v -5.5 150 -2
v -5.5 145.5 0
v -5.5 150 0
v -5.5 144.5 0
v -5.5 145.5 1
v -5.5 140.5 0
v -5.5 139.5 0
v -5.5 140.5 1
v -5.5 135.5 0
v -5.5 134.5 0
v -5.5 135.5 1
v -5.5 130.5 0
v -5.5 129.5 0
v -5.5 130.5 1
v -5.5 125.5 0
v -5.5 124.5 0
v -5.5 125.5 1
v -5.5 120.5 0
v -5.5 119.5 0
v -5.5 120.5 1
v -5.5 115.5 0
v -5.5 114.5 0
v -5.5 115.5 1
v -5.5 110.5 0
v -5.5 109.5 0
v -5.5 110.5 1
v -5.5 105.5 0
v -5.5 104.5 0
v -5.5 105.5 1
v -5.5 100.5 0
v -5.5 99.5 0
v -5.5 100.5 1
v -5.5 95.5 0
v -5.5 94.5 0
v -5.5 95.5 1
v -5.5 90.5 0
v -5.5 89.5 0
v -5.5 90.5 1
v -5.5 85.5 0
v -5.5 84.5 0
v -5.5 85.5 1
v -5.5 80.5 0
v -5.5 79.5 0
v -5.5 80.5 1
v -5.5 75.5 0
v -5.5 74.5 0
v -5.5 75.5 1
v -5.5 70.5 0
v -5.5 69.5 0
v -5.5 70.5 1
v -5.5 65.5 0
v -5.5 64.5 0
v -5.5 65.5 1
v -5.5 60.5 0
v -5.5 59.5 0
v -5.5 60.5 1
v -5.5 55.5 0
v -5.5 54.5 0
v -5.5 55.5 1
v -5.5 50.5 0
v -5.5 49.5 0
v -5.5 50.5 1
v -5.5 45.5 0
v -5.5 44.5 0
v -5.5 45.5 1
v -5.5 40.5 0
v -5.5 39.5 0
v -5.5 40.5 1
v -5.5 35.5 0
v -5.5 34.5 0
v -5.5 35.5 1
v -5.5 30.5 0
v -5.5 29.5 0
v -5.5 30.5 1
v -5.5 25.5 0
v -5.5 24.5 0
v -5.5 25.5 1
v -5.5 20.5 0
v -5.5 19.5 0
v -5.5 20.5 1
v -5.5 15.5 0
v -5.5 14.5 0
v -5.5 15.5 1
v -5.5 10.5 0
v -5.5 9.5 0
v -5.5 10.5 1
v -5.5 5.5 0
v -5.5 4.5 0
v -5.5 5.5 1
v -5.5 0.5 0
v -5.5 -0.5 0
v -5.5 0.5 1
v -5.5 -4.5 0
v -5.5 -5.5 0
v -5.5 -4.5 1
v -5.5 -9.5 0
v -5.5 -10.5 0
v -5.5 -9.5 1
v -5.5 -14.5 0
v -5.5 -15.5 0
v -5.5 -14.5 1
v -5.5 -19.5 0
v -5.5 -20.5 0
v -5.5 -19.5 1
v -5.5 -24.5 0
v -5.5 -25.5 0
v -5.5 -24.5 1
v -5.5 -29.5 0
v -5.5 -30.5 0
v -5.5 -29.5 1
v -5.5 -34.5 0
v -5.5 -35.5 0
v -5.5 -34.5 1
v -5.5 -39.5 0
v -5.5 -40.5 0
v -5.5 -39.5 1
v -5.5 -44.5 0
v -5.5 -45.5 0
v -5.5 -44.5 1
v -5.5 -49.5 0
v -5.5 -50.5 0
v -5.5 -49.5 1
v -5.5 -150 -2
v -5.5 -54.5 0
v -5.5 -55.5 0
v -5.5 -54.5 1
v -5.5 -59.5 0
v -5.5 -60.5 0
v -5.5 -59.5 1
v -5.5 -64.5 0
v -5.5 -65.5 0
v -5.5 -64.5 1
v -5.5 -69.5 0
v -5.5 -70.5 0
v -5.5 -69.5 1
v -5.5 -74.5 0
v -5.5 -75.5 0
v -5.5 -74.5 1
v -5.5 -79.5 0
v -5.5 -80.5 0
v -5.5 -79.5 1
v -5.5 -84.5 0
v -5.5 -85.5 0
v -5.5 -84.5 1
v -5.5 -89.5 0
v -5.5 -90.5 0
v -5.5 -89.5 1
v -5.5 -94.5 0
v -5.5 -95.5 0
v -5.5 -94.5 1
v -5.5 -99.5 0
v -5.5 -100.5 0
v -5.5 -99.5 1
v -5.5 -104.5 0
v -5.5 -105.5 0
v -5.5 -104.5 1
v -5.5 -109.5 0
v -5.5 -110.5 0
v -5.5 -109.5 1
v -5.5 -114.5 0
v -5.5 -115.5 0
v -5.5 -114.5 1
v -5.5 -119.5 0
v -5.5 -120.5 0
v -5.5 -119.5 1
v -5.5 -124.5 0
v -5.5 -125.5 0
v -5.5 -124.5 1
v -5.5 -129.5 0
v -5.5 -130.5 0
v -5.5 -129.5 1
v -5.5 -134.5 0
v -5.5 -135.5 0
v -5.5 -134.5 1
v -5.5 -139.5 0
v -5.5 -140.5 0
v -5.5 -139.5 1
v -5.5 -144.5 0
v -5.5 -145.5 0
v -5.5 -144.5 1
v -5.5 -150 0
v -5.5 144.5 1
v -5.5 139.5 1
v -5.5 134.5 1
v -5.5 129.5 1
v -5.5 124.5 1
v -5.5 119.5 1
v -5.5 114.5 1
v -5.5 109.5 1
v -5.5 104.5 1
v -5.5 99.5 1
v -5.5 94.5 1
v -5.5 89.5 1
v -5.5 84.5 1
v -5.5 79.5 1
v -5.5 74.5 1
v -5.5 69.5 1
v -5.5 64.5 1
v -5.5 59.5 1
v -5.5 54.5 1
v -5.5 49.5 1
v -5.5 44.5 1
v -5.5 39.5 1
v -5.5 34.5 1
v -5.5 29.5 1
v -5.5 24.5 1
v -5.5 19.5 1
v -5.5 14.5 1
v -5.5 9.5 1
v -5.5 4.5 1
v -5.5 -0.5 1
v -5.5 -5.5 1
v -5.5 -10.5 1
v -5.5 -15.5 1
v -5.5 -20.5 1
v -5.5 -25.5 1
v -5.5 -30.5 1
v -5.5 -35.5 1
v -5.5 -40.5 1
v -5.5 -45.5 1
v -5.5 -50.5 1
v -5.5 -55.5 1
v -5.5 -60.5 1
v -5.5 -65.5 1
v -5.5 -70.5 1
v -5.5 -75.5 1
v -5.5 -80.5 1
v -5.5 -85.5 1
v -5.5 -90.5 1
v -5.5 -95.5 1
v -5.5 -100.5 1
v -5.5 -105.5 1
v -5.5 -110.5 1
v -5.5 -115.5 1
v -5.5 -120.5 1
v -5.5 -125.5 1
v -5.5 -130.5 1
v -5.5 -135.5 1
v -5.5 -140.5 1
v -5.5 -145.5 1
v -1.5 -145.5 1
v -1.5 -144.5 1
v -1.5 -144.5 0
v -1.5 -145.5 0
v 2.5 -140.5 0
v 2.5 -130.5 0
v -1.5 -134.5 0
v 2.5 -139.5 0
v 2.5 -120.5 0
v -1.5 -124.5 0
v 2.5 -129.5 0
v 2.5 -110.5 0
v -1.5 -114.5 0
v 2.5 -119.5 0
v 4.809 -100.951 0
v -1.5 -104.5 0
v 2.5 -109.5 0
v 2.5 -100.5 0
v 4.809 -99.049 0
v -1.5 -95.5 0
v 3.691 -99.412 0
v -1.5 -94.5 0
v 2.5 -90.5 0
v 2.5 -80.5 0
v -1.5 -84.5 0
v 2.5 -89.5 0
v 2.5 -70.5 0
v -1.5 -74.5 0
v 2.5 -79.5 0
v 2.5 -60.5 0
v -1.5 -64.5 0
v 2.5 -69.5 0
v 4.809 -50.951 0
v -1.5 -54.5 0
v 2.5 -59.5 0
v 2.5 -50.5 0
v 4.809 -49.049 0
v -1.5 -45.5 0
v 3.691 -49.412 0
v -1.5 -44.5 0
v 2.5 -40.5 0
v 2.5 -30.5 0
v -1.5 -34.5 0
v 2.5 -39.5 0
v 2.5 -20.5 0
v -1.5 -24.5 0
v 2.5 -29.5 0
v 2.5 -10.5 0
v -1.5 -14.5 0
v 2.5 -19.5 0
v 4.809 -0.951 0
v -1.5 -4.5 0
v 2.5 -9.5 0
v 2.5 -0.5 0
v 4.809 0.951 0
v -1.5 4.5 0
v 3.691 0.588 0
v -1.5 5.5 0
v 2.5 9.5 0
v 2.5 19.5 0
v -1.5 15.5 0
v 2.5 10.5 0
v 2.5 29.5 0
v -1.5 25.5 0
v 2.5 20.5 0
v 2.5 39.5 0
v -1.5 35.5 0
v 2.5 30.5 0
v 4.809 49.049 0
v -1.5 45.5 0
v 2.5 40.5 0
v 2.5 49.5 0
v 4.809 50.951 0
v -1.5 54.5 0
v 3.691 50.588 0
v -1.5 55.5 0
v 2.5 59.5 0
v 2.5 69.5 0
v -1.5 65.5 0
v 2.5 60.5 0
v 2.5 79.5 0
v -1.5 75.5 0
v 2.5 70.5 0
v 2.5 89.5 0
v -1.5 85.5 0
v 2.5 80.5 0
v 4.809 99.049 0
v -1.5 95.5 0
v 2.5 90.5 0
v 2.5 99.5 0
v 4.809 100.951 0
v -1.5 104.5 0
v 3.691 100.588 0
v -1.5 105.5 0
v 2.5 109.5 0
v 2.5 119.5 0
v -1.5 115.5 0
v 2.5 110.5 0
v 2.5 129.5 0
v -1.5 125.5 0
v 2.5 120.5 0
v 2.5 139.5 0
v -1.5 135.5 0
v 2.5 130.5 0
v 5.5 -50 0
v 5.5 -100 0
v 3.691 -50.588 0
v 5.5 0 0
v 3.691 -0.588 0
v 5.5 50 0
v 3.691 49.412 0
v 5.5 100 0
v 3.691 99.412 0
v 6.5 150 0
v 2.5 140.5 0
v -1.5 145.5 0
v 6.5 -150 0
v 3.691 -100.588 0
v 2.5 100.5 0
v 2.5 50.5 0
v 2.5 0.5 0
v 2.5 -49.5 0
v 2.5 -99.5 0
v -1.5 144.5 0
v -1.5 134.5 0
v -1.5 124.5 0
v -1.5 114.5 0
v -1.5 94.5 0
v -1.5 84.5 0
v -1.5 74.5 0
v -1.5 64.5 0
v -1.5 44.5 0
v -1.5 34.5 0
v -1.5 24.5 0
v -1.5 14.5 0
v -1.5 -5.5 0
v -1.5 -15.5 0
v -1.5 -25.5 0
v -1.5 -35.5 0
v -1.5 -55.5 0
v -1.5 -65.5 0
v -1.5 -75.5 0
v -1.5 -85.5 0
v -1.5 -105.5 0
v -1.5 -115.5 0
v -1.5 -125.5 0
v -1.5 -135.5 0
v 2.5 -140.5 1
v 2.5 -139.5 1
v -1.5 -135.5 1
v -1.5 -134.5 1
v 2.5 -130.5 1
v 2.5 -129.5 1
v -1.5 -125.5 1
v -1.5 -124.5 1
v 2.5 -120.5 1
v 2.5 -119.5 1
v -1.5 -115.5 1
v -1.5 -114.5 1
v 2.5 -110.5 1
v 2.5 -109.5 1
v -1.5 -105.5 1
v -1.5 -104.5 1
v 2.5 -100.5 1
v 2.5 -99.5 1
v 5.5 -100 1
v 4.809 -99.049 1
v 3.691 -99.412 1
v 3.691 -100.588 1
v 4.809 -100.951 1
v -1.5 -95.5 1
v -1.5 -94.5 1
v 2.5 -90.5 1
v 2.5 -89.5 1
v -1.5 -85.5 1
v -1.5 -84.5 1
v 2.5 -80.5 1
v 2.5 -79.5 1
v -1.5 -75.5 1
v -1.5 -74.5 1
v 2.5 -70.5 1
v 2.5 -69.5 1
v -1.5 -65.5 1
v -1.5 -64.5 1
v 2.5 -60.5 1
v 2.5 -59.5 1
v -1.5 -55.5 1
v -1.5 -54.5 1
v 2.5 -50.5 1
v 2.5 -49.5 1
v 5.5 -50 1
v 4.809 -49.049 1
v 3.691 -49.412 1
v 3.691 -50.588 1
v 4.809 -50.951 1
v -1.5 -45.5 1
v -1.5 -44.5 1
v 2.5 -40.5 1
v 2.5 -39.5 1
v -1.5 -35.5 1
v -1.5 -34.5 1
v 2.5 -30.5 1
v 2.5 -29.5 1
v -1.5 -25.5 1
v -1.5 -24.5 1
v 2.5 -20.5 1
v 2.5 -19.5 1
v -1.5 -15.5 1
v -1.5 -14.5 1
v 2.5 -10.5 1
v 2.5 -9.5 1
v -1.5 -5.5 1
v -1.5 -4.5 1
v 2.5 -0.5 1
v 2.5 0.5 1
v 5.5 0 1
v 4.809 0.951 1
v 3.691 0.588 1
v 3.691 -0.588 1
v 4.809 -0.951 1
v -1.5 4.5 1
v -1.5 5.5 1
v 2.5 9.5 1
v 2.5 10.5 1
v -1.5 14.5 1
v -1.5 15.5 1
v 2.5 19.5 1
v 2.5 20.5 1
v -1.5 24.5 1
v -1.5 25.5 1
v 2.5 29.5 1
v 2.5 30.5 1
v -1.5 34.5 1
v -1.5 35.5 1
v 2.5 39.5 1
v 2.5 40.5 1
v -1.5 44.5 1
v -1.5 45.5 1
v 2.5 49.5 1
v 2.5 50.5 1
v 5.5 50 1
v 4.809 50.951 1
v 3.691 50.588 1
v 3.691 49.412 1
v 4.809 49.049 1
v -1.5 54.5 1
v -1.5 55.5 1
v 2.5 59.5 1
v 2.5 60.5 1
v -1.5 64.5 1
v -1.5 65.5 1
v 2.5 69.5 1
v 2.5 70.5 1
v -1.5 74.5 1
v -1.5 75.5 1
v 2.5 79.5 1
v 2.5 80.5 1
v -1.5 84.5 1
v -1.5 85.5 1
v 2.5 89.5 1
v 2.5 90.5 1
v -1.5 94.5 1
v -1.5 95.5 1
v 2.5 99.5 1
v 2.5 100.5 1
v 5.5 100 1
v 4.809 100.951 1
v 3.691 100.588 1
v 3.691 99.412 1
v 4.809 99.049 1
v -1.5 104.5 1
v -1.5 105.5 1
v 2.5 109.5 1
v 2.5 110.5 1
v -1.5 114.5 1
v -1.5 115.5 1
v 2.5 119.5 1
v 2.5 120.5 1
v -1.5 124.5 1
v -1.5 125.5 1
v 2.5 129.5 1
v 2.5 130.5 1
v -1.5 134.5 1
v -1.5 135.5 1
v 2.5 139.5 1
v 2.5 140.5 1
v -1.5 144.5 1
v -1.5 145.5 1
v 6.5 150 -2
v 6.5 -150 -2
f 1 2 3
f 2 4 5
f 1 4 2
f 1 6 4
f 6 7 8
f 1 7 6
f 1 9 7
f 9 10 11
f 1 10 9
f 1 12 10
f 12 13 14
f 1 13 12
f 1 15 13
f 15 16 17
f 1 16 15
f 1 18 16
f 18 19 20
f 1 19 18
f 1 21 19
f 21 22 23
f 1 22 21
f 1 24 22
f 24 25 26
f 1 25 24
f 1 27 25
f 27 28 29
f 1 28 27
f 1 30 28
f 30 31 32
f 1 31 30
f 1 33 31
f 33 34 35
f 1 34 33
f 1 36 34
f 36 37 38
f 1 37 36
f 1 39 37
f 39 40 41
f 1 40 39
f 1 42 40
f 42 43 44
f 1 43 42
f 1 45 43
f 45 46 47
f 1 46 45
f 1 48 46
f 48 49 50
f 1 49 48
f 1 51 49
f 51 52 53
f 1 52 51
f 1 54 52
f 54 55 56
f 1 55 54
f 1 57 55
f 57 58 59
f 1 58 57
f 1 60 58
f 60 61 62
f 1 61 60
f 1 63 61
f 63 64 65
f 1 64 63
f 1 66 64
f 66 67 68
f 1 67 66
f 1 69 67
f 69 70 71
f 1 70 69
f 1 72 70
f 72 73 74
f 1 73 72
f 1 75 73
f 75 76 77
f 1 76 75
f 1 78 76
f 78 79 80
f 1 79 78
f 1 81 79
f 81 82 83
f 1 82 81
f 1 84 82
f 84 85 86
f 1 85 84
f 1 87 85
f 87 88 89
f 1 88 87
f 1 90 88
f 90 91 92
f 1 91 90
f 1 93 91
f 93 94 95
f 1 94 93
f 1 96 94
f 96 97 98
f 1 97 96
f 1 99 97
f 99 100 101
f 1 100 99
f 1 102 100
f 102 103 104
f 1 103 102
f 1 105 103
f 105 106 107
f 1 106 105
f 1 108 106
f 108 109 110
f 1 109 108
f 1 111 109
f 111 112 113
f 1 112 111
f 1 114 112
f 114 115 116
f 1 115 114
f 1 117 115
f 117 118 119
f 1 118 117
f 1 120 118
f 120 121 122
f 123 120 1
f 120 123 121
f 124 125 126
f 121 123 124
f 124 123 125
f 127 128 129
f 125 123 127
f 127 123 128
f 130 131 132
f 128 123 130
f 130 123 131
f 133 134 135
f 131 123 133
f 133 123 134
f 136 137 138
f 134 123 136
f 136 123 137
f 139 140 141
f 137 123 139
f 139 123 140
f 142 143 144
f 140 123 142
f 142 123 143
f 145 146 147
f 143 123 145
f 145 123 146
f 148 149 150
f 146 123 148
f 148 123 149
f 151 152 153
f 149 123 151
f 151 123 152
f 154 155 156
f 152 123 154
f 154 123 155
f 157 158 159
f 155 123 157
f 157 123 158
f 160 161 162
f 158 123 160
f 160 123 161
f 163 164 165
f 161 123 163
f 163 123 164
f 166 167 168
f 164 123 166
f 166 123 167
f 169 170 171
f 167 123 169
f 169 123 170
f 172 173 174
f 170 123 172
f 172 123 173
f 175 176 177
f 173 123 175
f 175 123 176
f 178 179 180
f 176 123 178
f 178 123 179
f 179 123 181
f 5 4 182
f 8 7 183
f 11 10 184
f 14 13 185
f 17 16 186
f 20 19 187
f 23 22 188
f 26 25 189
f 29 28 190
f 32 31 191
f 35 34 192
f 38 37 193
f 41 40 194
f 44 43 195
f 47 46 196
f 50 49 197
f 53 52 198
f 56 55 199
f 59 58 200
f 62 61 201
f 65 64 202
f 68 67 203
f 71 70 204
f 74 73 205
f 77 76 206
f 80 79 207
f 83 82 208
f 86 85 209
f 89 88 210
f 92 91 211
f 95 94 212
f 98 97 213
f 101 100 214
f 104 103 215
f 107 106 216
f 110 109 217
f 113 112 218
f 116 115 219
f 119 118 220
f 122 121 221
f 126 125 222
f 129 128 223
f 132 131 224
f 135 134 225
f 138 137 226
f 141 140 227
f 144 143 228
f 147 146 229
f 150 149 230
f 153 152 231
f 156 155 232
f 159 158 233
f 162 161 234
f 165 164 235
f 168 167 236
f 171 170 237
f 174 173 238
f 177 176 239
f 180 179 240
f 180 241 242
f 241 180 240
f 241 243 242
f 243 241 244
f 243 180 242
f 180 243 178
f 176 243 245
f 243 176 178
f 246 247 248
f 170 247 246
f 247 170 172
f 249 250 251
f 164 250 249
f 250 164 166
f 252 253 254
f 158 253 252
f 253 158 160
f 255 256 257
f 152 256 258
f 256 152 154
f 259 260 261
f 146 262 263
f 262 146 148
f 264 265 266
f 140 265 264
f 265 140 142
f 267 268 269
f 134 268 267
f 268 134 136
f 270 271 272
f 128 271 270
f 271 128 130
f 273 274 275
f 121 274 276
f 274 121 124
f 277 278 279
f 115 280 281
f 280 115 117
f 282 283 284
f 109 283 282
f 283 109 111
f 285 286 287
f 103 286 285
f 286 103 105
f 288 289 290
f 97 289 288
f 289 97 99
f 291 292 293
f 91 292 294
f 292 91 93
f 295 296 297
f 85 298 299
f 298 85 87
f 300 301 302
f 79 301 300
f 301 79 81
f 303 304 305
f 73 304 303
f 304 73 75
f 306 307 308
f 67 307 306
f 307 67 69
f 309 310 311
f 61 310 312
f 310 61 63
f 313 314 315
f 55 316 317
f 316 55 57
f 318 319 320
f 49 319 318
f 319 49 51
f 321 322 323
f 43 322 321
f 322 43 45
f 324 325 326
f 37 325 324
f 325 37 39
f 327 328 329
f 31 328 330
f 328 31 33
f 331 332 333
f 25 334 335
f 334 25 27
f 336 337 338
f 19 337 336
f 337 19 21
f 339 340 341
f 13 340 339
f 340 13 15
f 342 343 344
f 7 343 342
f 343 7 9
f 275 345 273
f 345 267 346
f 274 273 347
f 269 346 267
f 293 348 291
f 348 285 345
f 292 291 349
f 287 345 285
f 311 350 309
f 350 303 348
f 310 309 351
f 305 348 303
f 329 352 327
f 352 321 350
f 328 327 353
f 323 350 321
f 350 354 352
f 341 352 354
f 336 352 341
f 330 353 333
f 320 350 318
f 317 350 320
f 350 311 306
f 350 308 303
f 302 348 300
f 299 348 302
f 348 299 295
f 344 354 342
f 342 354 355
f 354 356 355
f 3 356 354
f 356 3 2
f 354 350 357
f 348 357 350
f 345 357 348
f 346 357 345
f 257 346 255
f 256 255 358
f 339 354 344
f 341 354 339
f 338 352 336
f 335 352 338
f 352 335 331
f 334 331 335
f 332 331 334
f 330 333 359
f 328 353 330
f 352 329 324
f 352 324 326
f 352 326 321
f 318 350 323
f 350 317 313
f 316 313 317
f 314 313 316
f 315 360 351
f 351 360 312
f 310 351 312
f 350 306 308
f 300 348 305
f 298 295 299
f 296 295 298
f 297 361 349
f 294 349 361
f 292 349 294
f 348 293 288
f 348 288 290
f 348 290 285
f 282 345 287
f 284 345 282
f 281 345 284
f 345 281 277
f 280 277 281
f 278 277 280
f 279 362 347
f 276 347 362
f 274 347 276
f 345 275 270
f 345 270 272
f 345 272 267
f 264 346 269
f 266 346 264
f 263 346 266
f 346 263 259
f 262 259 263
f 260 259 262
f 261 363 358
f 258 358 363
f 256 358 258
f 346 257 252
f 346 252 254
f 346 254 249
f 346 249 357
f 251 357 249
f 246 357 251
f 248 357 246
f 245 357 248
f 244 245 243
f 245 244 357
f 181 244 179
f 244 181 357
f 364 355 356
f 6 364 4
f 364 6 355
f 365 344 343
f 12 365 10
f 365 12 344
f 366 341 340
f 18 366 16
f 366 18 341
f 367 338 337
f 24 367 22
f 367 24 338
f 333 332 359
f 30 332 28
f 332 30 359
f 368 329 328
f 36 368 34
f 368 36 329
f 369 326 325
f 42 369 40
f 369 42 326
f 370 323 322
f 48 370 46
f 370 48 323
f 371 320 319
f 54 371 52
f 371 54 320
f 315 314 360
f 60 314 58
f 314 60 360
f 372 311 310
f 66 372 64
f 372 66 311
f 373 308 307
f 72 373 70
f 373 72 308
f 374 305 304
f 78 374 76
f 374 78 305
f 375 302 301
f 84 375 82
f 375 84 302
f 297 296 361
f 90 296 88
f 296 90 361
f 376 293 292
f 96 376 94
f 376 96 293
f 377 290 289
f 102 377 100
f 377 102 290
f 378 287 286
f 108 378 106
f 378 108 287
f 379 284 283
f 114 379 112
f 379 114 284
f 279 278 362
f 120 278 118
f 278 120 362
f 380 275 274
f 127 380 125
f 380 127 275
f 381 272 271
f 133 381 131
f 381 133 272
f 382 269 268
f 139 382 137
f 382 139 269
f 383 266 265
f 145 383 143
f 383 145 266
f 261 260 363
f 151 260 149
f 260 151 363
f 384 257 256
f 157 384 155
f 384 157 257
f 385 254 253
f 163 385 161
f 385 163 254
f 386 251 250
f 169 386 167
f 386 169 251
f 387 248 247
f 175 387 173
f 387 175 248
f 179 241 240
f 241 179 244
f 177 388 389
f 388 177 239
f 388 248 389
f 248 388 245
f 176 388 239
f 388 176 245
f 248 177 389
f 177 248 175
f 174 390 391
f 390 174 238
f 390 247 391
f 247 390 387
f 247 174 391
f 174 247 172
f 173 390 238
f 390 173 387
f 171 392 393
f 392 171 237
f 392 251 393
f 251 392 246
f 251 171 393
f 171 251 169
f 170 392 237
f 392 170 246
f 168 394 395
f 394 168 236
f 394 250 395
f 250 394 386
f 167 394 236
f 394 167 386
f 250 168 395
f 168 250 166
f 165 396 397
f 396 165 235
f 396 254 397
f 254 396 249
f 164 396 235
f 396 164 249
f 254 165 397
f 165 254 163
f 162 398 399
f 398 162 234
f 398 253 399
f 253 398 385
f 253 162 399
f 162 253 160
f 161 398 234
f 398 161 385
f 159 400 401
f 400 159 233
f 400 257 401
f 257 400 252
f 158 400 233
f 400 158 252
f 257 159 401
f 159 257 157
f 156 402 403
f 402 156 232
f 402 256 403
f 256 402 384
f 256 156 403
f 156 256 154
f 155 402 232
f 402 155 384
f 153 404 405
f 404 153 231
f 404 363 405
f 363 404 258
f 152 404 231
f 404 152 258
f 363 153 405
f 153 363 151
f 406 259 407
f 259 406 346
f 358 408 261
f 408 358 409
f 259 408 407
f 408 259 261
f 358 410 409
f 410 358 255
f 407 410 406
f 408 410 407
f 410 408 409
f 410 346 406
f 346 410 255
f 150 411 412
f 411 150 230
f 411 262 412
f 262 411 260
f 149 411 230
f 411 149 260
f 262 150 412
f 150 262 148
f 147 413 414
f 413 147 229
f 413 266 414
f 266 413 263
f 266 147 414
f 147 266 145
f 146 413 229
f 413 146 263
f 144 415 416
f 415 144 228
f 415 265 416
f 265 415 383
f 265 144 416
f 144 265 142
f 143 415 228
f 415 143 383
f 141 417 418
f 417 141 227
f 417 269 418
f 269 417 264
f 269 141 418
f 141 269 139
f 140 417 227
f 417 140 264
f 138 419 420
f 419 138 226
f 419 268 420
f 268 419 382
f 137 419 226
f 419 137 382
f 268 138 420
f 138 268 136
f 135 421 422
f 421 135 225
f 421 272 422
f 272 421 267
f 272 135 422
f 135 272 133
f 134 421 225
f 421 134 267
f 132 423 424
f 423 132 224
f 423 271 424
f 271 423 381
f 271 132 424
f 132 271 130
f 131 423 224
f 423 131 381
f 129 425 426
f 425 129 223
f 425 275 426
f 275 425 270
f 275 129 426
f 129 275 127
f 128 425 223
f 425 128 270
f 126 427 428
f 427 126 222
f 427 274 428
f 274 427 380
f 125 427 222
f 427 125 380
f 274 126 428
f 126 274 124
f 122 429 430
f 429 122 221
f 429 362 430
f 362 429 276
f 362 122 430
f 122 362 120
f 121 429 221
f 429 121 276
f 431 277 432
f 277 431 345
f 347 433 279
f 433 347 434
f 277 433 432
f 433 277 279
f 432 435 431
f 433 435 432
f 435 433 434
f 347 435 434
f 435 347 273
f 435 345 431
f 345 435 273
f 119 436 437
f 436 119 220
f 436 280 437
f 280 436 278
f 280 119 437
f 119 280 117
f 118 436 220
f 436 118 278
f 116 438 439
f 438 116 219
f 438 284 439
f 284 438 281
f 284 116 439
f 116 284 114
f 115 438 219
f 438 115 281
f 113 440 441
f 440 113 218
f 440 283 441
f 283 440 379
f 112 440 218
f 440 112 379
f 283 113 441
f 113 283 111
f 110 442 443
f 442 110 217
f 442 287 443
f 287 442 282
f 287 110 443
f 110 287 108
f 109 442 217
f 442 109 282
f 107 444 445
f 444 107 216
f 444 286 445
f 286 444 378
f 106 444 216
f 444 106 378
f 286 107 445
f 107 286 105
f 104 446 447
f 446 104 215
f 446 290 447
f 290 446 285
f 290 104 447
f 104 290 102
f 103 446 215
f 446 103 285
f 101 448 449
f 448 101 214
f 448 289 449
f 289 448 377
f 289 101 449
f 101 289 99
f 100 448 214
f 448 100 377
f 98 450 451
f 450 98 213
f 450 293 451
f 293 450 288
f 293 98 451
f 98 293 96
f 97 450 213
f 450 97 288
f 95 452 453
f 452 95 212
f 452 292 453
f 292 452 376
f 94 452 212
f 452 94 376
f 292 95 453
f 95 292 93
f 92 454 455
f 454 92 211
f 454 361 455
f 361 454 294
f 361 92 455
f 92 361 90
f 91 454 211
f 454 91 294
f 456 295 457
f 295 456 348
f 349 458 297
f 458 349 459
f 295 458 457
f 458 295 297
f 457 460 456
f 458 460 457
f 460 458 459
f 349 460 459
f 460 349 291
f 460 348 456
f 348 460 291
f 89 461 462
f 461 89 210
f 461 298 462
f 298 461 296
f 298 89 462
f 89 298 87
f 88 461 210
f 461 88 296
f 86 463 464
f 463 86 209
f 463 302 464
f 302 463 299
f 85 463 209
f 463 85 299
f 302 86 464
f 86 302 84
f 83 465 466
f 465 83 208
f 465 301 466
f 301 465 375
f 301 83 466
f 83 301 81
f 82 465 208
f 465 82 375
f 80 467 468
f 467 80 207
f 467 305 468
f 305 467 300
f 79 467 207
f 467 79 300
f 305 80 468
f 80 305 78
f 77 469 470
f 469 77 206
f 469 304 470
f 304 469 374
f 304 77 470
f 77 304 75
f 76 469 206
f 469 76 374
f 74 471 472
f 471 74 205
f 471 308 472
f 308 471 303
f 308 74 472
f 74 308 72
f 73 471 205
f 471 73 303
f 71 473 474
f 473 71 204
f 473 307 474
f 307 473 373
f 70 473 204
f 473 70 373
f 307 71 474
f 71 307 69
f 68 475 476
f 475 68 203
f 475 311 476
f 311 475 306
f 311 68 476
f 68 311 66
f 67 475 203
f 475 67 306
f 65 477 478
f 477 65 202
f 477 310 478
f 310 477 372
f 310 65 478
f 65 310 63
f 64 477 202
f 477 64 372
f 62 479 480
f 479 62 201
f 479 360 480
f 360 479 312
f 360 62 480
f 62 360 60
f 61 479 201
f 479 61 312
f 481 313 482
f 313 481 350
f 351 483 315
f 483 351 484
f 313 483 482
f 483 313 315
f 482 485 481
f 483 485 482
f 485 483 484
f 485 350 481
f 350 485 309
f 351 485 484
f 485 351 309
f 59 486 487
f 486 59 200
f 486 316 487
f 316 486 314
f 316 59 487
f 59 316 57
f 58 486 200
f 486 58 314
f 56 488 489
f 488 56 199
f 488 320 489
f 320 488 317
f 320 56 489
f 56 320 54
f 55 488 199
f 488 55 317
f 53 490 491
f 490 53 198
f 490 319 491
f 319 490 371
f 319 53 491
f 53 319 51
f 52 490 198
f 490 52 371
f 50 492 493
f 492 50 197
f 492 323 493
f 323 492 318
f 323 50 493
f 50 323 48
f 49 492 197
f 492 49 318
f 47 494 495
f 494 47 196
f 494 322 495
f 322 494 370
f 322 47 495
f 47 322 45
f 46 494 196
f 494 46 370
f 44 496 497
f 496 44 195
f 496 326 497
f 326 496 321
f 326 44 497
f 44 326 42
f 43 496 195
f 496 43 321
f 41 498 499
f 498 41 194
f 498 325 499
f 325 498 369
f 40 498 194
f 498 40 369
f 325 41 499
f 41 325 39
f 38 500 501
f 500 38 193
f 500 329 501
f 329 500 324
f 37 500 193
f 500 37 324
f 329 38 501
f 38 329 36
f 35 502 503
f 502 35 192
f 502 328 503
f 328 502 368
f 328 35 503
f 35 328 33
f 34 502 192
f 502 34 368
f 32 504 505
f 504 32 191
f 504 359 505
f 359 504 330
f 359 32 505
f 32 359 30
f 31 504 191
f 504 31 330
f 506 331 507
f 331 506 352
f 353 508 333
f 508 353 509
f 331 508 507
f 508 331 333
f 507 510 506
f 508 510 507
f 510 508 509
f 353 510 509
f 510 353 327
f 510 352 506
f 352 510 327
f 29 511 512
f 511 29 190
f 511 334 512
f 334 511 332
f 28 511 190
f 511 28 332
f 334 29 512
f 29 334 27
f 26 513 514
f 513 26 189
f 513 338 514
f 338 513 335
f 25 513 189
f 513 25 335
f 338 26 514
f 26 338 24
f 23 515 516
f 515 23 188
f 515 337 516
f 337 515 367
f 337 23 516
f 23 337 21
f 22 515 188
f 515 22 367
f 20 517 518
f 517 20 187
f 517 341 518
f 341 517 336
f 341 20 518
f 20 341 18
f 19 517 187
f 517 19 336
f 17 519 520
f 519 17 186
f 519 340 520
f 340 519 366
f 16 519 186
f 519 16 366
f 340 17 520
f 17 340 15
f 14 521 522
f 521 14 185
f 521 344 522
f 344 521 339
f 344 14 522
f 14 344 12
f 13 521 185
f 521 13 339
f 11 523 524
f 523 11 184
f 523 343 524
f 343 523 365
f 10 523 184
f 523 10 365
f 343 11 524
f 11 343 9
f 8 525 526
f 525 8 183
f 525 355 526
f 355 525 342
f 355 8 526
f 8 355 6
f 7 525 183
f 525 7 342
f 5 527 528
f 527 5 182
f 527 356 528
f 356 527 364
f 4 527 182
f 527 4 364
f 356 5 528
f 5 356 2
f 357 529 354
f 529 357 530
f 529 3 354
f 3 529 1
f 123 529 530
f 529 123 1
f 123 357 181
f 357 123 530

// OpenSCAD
$depth=20;
$mark_width = 1;
$mark_depth = 4;
$mark_height = 1;
$dot_space=1;
$dot_radius=1;
$floor=2;
$margin=1;

module rulerSide(length, mark_width, mark_depth, mark_density, dots) {
max=$mark_depth*2+$dot_space+$dot_radius*2;
translate([-max/2, -length/2, 0]) {
union() {
for( i = [1:length-1]) {
mod_p = ((i%10)==0)?2:1;
mod = ((i%5)==0)?mod_p:0.5;
md = mark_depth * mod;
if(i % mark_density == 0) {
translate([0, i-mark_width/2, 0])
cube([md, mark_width, $mark_height]);
}
if(i % 50 == 0 && dots) {
translate([mark_depth*2+$dot_space+$dot_radius, i, 0])
cylinder(r=$dot_radius, h=$mark_height);
}

}
}
}
}

length=300;

max=$mark_depth*2+$dot_space+$dot_radius*2;

w=max+$margin;

rulerSide(length, $mark_width, $mark_depth, 5, true);

translate([-max/2, -length/2, -$floor])
cube([w, length, $floor]);
